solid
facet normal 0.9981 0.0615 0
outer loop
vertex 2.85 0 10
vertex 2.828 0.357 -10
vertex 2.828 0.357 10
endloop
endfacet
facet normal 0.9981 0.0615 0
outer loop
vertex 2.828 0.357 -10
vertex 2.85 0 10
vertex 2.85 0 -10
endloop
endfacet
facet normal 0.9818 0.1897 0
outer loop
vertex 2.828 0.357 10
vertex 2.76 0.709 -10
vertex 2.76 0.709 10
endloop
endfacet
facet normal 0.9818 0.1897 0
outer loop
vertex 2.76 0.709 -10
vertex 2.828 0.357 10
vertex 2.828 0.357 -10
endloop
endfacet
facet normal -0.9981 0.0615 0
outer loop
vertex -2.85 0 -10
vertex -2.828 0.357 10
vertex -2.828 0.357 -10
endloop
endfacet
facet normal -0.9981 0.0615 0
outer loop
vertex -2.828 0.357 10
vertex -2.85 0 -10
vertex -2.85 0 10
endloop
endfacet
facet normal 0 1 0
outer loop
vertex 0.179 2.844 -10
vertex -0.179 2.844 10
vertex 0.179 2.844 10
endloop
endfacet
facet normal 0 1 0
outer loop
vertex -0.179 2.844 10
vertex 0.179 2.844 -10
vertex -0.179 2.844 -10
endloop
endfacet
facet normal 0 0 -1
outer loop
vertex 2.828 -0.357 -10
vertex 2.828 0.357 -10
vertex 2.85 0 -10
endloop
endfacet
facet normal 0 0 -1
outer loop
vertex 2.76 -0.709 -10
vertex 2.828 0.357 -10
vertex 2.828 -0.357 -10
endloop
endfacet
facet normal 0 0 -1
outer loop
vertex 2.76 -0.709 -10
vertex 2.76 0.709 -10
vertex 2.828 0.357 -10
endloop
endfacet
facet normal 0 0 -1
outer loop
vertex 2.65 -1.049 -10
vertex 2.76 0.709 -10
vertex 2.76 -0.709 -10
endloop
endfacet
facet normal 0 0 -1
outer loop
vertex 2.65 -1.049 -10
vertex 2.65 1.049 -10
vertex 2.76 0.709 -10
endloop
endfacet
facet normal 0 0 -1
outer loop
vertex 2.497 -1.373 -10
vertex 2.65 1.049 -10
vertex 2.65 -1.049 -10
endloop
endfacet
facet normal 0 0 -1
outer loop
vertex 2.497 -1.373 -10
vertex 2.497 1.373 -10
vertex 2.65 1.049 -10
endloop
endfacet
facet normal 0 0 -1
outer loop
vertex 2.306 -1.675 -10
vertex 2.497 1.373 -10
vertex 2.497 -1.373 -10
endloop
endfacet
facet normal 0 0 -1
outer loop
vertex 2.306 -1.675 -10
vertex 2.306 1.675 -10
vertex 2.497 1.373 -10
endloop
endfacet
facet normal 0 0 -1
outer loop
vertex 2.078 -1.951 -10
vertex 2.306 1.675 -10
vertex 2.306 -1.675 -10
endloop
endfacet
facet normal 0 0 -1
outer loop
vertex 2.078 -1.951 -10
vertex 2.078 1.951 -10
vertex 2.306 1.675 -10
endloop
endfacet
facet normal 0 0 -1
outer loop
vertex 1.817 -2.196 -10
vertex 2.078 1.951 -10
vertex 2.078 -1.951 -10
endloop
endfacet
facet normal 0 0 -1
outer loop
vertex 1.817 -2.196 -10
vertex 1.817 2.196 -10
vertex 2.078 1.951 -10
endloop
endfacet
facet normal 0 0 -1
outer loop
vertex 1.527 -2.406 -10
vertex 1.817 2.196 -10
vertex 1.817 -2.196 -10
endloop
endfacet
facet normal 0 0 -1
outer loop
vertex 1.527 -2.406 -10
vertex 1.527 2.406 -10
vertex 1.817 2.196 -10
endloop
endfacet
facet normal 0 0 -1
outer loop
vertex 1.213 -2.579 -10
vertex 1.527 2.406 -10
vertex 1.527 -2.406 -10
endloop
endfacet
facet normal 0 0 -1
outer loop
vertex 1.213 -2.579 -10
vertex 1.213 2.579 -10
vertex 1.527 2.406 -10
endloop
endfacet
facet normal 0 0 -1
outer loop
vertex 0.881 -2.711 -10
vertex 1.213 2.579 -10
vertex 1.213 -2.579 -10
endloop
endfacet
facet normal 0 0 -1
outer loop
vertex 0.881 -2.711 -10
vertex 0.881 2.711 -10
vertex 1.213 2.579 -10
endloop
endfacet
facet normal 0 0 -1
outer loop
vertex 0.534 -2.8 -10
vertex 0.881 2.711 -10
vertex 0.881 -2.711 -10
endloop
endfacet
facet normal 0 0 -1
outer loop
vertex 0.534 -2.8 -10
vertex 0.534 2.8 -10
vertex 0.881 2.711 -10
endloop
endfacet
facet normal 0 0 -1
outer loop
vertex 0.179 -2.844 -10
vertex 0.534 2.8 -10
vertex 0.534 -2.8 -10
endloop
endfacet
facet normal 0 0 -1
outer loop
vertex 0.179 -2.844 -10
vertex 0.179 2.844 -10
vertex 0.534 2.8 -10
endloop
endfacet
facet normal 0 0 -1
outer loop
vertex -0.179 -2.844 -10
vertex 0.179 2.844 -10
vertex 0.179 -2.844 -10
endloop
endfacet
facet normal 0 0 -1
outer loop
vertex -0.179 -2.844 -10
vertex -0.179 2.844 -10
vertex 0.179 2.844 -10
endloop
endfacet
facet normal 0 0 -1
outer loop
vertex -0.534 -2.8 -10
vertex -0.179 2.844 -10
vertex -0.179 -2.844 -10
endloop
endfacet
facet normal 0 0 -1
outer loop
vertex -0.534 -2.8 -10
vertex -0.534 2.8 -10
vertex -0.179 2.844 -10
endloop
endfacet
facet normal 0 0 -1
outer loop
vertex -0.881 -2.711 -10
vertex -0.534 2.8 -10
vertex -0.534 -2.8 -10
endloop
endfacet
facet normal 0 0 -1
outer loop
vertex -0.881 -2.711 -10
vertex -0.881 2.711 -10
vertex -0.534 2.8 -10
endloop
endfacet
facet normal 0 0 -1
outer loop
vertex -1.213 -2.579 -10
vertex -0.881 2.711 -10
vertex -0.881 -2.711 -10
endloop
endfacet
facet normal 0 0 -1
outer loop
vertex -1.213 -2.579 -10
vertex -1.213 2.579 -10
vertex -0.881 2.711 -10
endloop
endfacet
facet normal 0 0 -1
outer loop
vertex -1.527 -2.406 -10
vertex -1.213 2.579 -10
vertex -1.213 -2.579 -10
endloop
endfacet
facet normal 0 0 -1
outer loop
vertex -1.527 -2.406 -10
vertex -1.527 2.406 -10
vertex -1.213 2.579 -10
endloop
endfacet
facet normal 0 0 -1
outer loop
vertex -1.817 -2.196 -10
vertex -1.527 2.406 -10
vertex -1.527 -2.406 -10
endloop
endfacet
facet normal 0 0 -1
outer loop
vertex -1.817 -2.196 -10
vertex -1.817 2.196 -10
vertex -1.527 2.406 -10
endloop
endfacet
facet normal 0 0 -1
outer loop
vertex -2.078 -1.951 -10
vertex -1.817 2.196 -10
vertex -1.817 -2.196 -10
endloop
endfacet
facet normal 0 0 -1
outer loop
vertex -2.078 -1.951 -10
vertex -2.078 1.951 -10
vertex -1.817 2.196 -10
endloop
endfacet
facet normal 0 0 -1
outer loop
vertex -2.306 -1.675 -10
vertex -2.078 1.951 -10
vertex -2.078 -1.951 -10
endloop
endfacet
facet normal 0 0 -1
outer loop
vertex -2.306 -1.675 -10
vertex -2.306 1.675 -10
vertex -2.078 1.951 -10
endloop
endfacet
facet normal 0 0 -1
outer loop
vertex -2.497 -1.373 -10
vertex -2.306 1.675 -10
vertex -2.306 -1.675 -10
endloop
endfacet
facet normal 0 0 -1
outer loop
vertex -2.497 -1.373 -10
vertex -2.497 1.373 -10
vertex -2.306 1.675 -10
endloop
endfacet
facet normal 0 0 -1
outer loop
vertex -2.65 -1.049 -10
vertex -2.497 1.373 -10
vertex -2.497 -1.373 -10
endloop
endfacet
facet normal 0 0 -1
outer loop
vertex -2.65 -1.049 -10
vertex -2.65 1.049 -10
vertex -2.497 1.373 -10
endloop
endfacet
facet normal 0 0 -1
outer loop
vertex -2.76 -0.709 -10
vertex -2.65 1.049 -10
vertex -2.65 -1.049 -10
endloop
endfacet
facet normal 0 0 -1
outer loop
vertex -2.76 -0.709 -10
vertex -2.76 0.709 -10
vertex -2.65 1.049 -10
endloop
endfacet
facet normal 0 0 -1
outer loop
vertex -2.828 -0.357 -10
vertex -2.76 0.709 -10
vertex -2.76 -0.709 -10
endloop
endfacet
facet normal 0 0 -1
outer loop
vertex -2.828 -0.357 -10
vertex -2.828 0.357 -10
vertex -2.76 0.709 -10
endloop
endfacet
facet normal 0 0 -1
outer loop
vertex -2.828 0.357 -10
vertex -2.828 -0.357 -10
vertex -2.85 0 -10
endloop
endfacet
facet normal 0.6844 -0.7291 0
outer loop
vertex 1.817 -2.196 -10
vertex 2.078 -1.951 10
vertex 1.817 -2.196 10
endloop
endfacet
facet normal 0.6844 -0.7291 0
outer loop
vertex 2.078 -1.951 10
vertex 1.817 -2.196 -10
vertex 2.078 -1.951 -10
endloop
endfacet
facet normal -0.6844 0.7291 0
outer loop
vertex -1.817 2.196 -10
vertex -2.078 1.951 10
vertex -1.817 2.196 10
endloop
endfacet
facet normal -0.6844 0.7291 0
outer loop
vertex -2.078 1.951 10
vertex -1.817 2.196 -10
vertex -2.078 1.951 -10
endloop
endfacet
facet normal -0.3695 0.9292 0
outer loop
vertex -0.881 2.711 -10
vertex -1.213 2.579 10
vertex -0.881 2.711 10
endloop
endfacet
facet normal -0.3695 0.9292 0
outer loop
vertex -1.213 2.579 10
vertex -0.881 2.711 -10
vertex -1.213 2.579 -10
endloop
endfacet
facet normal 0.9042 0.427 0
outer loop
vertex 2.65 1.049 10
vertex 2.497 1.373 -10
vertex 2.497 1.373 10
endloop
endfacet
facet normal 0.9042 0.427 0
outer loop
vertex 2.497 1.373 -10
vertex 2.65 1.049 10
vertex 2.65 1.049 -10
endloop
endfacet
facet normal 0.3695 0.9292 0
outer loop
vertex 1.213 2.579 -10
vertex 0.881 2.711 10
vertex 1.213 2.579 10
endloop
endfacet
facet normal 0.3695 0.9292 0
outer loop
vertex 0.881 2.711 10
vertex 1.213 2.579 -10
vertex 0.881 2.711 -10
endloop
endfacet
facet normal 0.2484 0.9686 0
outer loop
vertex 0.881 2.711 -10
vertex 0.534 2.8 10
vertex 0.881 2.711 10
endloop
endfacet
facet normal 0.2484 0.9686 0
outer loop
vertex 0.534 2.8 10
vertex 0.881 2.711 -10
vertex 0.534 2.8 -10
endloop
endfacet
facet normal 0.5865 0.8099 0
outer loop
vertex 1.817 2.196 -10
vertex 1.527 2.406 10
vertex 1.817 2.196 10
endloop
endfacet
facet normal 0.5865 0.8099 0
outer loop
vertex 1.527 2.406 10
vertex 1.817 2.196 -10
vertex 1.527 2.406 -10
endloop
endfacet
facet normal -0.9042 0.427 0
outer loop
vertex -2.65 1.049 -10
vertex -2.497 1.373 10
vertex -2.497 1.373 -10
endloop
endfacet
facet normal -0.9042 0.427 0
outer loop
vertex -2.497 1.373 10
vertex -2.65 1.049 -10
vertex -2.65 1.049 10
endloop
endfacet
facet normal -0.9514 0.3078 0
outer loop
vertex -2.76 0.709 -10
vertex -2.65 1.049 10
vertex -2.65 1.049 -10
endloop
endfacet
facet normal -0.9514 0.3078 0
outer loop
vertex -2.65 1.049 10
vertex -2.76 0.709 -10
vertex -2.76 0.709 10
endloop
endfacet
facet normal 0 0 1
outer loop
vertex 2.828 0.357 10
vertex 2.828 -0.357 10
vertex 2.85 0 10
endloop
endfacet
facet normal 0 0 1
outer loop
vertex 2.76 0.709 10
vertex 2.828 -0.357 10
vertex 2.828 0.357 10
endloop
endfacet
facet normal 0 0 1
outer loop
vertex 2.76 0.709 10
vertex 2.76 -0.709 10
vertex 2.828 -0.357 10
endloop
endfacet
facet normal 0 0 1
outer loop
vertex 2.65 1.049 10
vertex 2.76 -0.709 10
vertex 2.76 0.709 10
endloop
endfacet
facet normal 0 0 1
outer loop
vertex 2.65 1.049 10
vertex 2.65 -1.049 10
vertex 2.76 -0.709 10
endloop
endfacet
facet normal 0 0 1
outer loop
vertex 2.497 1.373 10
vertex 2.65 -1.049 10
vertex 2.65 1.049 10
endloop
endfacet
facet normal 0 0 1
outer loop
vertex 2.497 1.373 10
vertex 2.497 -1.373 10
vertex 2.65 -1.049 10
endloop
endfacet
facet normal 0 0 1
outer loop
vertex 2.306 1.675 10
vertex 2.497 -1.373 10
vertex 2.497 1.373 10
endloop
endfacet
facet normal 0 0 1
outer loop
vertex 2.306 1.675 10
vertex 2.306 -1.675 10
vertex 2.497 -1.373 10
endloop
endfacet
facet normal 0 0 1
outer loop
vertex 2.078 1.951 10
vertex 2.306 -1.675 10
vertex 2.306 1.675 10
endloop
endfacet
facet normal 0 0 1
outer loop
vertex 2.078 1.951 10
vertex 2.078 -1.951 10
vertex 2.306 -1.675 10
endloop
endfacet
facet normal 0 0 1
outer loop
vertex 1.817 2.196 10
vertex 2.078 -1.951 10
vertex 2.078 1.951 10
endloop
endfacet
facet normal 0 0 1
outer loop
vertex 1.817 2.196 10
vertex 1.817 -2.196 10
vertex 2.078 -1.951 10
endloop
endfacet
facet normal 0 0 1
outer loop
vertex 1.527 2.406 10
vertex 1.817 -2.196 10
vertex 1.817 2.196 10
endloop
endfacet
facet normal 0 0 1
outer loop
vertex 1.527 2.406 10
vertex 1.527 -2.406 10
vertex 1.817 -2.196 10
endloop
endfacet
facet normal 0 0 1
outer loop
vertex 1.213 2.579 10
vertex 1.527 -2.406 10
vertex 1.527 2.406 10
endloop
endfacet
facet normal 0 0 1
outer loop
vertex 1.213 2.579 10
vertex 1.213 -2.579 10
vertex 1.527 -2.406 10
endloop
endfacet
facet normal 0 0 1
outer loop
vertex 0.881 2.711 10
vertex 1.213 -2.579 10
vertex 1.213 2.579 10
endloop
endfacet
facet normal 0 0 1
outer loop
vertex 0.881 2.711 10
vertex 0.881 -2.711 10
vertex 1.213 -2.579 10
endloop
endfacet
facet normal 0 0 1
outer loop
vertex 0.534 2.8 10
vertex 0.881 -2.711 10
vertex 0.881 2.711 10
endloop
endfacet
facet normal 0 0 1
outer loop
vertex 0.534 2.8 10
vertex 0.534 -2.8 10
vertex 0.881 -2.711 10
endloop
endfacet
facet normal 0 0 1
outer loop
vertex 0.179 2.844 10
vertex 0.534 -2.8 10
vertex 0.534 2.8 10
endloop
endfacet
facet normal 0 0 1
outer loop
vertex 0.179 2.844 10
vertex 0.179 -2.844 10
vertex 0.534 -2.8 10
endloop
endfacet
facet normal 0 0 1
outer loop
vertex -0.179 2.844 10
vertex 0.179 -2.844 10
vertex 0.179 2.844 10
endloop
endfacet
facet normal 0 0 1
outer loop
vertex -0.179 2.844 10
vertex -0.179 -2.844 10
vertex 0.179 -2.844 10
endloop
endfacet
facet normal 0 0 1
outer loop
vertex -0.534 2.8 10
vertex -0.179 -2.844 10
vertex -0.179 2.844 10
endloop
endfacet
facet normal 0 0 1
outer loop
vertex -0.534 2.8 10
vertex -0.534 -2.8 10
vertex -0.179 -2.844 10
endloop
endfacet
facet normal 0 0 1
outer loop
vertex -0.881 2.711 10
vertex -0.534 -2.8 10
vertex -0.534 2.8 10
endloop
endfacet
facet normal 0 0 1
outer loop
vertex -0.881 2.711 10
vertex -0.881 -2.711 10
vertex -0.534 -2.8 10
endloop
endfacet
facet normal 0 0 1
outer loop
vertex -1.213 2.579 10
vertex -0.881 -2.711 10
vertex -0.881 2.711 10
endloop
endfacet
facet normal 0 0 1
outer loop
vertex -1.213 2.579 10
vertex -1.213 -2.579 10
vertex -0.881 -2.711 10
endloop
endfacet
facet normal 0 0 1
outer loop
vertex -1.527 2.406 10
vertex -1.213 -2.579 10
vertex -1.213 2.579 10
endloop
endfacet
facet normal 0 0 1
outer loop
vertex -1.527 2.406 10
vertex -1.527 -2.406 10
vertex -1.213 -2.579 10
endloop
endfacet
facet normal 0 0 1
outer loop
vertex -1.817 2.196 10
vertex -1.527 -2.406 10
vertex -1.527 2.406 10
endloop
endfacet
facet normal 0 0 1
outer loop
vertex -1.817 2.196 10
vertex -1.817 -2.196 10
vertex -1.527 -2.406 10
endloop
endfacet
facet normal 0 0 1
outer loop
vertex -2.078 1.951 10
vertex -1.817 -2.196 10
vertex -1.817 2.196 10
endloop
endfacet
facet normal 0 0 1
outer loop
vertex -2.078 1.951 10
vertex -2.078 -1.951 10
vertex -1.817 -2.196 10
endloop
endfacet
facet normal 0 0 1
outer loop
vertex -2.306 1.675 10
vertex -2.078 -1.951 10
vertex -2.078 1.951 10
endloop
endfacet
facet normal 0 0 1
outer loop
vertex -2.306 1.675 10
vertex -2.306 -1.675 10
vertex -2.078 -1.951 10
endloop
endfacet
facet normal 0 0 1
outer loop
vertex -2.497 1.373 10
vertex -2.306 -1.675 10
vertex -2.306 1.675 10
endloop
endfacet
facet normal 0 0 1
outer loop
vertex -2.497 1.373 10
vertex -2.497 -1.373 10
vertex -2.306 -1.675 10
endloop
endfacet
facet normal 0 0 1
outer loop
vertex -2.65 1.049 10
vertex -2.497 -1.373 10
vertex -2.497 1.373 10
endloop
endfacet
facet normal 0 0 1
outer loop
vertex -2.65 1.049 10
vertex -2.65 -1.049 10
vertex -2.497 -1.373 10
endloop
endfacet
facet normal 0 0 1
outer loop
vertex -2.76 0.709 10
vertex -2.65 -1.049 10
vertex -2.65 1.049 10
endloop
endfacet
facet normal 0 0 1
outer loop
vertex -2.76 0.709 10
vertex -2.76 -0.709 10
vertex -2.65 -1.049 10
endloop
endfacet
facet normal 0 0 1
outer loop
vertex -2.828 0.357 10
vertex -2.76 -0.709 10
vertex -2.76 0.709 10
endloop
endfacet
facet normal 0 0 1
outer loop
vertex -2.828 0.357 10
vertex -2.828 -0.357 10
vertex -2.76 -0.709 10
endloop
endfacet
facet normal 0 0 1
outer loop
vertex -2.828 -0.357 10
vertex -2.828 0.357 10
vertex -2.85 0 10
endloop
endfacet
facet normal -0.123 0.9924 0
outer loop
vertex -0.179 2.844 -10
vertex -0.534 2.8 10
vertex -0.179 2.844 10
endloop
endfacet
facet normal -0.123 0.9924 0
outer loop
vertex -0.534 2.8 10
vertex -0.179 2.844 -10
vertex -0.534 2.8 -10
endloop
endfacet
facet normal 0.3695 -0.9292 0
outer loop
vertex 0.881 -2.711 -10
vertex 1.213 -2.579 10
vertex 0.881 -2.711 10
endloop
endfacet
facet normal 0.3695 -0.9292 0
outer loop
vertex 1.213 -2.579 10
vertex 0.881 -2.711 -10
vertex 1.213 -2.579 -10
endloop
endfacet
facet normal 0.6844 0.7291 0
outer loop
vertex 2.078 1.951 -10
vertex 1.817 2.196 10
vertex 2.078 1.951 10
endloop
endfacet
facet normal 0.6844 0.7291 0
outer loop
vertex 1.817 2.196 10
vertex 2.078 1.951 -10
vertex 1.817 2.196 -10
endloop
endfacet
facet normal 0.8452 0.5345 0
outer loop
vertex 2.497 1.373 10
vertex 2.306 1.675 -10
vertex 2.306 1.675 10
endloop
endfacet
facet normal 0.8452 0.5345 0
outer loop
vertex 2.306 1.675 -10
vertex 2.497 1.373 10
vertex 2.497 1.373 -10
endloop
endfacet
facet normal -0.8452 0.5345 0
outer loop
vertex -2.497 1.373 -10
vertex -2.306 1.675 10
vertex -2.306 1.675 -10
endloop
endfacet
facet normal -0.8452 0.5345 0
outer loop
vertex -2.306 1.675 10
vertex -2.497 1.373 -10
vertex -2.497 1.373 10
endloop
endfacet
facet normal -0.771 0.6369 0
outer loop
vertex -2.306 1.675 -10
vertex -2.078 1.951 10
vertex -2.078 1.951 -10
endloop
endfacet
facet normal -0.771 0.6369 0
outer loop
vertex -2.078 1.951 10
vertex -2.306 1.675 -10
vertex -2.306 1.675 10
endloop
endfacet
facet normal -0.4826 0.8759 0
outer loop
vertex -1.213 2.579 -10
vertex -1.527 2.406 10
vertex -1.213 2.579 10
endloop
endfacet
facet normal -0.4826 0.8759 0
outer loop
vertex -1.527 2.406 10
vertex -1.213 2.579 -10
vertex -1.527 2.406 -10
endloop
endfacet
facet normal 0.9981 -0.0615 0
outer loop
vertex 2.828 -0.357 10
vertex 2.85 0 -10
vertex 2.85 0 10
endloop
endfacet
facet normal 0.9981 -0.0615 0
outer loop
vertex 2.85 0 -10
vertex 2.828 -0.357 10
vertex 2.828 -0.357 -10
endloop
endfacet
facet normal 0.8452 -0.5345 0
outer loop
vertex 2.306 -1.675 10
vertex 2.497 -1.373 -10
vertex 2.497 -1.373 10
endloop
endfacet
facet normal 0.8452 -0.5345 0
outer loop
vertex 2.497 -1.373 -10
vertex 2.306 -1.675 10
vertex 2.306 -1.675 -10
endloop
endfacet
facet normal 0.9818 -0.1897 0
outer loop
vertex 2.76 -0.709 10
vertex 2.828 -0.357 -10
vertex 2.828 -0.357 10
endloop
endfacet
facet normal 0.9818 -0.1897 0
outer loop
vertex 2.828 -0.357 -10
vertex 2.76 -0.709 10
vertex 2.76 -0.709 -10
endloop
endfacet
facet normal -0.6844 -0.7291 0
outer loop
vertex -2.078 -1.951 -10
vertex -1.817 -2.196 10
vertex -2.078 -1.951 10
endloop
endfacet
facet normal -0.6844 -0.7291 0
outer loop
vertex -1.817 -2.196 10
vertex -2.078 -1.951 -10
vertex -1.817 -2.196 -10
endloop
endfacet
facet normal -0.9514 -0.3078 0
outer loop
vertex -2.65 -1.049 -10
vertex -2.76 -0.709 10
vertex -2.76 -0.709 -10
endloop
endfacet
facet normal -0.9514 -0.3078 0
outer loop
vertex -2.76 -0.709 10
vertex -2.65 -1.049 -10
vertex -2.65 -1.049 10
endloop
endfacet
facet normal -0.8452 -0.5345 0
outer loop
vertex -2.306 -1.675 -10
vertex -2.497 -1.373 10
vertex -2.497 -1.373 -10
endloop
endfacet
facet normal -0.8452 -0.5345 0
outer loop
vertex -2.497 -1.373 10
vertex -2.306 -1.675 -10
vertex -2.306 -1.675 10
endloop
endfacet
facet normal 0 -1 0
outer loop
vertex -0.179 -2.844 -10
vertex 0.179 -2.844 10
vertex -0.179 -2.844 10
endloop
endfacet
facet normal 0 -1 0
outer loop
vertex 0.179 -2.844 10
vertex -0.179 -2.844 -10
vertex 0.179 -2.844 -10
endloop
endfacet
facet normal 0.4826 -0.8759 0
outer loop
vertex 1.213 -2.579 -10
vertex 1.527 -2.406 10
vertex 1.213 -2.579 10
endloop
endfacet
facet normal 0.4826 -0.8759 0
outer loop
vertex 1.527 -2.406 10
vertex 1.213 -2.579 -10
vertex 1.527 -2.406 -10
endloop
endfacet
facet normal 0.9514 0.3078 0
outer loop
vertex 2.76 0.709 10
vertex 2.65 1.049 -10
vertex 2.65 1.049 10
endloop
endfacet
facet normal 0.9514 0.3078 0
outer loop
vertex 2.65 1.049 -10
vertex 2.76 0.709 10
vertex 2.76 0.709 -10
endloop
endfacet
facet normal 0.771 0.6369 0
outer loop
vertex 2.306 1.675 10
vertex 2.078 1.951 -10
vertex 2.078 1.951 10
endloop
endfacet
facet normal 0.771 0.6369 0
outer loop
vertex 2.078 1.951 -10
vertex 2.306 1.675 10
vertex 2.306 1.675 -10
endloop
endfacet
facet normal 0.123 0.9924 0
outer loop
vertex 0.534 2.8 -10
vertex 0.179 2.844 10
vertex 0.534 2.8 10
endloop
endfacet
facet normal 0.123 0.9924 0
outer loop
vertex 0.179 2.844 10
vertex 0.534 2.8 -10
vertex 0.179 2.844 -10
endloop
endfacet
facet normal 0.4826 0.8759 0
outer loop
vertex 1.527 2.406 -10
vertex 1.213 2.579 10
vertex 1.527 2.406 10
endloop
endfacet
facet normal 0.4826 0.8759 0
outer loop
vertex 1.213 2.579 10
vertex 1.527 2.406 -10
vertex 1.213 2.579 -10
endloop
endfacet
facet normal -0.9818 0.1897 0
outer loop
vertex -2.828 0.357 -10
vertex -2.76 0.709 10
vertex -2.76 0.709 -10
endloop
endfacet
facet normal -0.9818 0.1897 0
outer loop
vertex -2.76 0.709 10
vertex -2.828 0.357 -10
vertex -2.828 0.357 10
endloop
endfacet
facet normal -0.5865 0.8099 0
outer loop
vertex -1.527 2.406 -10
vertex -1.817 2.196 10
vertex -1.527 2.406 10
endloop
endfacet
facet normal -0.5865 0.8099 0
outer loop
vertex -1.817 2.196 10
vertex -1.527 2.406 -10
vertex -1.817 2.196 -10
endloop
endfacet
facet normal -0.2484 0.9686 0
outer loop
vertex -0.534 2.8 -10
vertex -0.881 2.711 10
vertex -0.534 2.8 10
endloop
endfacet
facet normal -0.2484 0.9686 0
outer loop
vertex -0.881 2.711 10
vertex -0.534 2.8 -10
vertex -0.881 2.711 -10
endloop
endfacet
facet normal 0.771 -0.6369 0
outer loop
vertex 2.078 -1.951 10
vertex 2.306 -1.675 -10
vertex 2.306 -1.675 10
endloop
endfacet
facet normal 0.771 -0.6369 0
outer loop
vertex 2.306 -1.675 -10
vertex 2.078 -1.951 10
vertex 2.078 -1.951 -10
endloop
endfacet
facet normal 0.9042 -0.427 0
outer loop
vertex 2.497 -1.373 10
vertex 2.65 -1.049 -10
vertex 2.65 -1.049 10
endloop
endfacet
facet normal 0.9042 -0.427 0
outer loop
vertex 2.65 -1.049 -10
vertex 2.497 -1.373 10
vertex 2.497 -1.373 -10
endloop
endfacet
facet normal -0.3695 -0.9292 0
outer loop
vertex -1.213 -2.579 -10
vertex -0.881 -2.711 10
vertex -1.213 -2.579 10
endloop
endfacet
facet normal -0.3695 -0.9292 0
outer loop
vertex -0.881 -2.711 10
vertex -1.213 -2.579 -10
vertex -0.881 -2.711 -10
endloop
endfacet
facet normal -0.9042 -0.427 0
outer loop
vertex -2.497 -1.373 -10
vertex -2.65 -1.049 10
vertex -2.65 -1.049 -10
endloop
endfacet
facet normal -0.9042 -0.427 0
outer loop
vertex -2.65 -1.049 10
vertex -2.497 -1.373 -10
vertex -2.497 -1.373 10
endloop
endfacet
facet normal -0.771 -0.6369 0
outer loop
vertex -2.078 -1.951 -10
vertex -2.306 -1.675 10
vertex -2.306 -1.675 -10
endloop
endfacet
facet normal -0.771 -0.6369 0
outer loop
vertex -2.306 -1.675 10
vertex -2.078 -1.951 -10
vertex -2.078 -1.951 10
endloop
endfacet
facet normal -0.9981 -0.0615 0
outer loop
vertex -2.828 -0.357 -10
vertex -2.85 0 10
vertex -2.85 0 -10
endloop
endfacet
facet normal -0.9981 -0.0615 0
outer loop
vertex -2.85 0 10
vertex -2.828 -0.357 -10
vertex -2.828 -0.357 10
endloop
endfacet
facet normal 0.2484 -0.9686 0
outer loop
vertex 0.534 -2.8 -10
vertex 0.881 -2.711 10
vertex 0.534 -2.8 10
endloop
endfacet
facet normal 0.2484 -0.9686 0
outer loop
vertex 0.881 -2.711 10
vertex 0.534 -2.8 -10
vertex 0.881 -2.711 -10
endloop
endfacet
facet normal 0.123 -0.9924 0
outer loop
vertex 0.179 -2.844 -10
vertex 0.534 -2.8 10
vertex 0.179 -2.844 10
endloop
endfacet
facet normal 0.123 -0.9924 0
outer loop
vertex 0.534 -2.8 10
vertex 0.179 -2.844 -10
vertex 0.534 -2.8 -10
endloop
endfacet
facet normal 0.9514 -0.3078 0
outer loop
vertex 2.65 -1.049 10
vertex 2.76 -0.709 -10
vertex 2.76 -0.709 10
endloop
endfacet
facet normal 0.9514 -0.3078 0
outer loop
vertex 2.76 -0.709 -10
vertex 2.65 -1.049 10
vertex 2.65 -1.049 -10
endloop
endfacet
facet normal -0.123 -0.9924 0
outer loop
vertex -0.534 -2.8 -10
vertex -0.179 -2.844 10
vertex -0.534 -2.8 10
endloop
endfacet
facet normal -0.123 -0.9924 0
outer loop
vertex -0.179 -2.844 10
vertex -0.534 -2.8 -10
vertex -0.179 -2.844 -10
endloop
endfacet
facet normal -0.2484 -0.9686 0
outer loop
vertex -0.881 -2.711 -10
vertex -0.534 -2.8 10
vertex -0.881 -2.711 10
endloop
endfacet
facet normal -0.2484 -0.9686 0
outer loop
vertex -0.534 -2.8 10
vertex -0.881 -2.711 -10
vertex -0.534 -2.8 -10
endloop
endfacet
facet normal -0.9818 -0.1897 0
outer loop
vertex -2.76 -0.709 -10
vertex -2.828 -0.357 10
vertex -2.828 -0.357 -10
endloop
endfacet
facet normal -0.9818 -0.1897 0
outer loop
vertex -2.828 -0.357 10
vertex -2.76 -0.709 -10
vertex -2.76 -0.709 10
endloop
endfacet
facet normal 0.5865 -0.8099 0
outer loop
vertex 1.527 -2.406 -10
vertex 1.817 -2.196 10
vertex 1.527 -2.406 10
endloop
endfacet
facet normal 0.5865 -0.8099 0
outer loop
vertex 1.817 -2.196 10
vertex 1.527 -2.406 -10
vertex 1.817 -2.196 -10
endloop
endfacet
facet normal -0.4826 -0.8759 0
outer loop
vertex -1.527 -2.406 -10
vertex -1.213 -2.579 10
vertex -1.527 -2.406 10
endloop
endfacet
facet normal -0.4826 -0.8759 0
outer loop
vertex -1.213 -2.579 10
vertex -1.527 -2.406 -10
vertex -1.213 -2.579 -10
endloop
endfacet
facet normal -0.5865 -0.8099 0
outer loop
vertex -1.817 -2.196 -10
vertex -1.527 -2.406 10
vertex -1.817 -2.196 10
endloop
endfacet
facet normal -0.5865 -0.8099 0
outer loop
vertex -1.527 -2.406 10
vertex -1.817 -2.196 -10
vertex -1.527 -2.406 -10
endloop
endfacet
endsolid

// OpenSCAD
$fn = 50;


difference() {
	union() {
		translate(v = [0, 0, -10.0000000000]) {
			cylinder(h = 20, r = 2.8500000000);
		}
	}
	union() {
		translate(v = [0, 0, -100.0000000000]) {
			cylinder(h = 200, r = 0);
		}
	}
}
